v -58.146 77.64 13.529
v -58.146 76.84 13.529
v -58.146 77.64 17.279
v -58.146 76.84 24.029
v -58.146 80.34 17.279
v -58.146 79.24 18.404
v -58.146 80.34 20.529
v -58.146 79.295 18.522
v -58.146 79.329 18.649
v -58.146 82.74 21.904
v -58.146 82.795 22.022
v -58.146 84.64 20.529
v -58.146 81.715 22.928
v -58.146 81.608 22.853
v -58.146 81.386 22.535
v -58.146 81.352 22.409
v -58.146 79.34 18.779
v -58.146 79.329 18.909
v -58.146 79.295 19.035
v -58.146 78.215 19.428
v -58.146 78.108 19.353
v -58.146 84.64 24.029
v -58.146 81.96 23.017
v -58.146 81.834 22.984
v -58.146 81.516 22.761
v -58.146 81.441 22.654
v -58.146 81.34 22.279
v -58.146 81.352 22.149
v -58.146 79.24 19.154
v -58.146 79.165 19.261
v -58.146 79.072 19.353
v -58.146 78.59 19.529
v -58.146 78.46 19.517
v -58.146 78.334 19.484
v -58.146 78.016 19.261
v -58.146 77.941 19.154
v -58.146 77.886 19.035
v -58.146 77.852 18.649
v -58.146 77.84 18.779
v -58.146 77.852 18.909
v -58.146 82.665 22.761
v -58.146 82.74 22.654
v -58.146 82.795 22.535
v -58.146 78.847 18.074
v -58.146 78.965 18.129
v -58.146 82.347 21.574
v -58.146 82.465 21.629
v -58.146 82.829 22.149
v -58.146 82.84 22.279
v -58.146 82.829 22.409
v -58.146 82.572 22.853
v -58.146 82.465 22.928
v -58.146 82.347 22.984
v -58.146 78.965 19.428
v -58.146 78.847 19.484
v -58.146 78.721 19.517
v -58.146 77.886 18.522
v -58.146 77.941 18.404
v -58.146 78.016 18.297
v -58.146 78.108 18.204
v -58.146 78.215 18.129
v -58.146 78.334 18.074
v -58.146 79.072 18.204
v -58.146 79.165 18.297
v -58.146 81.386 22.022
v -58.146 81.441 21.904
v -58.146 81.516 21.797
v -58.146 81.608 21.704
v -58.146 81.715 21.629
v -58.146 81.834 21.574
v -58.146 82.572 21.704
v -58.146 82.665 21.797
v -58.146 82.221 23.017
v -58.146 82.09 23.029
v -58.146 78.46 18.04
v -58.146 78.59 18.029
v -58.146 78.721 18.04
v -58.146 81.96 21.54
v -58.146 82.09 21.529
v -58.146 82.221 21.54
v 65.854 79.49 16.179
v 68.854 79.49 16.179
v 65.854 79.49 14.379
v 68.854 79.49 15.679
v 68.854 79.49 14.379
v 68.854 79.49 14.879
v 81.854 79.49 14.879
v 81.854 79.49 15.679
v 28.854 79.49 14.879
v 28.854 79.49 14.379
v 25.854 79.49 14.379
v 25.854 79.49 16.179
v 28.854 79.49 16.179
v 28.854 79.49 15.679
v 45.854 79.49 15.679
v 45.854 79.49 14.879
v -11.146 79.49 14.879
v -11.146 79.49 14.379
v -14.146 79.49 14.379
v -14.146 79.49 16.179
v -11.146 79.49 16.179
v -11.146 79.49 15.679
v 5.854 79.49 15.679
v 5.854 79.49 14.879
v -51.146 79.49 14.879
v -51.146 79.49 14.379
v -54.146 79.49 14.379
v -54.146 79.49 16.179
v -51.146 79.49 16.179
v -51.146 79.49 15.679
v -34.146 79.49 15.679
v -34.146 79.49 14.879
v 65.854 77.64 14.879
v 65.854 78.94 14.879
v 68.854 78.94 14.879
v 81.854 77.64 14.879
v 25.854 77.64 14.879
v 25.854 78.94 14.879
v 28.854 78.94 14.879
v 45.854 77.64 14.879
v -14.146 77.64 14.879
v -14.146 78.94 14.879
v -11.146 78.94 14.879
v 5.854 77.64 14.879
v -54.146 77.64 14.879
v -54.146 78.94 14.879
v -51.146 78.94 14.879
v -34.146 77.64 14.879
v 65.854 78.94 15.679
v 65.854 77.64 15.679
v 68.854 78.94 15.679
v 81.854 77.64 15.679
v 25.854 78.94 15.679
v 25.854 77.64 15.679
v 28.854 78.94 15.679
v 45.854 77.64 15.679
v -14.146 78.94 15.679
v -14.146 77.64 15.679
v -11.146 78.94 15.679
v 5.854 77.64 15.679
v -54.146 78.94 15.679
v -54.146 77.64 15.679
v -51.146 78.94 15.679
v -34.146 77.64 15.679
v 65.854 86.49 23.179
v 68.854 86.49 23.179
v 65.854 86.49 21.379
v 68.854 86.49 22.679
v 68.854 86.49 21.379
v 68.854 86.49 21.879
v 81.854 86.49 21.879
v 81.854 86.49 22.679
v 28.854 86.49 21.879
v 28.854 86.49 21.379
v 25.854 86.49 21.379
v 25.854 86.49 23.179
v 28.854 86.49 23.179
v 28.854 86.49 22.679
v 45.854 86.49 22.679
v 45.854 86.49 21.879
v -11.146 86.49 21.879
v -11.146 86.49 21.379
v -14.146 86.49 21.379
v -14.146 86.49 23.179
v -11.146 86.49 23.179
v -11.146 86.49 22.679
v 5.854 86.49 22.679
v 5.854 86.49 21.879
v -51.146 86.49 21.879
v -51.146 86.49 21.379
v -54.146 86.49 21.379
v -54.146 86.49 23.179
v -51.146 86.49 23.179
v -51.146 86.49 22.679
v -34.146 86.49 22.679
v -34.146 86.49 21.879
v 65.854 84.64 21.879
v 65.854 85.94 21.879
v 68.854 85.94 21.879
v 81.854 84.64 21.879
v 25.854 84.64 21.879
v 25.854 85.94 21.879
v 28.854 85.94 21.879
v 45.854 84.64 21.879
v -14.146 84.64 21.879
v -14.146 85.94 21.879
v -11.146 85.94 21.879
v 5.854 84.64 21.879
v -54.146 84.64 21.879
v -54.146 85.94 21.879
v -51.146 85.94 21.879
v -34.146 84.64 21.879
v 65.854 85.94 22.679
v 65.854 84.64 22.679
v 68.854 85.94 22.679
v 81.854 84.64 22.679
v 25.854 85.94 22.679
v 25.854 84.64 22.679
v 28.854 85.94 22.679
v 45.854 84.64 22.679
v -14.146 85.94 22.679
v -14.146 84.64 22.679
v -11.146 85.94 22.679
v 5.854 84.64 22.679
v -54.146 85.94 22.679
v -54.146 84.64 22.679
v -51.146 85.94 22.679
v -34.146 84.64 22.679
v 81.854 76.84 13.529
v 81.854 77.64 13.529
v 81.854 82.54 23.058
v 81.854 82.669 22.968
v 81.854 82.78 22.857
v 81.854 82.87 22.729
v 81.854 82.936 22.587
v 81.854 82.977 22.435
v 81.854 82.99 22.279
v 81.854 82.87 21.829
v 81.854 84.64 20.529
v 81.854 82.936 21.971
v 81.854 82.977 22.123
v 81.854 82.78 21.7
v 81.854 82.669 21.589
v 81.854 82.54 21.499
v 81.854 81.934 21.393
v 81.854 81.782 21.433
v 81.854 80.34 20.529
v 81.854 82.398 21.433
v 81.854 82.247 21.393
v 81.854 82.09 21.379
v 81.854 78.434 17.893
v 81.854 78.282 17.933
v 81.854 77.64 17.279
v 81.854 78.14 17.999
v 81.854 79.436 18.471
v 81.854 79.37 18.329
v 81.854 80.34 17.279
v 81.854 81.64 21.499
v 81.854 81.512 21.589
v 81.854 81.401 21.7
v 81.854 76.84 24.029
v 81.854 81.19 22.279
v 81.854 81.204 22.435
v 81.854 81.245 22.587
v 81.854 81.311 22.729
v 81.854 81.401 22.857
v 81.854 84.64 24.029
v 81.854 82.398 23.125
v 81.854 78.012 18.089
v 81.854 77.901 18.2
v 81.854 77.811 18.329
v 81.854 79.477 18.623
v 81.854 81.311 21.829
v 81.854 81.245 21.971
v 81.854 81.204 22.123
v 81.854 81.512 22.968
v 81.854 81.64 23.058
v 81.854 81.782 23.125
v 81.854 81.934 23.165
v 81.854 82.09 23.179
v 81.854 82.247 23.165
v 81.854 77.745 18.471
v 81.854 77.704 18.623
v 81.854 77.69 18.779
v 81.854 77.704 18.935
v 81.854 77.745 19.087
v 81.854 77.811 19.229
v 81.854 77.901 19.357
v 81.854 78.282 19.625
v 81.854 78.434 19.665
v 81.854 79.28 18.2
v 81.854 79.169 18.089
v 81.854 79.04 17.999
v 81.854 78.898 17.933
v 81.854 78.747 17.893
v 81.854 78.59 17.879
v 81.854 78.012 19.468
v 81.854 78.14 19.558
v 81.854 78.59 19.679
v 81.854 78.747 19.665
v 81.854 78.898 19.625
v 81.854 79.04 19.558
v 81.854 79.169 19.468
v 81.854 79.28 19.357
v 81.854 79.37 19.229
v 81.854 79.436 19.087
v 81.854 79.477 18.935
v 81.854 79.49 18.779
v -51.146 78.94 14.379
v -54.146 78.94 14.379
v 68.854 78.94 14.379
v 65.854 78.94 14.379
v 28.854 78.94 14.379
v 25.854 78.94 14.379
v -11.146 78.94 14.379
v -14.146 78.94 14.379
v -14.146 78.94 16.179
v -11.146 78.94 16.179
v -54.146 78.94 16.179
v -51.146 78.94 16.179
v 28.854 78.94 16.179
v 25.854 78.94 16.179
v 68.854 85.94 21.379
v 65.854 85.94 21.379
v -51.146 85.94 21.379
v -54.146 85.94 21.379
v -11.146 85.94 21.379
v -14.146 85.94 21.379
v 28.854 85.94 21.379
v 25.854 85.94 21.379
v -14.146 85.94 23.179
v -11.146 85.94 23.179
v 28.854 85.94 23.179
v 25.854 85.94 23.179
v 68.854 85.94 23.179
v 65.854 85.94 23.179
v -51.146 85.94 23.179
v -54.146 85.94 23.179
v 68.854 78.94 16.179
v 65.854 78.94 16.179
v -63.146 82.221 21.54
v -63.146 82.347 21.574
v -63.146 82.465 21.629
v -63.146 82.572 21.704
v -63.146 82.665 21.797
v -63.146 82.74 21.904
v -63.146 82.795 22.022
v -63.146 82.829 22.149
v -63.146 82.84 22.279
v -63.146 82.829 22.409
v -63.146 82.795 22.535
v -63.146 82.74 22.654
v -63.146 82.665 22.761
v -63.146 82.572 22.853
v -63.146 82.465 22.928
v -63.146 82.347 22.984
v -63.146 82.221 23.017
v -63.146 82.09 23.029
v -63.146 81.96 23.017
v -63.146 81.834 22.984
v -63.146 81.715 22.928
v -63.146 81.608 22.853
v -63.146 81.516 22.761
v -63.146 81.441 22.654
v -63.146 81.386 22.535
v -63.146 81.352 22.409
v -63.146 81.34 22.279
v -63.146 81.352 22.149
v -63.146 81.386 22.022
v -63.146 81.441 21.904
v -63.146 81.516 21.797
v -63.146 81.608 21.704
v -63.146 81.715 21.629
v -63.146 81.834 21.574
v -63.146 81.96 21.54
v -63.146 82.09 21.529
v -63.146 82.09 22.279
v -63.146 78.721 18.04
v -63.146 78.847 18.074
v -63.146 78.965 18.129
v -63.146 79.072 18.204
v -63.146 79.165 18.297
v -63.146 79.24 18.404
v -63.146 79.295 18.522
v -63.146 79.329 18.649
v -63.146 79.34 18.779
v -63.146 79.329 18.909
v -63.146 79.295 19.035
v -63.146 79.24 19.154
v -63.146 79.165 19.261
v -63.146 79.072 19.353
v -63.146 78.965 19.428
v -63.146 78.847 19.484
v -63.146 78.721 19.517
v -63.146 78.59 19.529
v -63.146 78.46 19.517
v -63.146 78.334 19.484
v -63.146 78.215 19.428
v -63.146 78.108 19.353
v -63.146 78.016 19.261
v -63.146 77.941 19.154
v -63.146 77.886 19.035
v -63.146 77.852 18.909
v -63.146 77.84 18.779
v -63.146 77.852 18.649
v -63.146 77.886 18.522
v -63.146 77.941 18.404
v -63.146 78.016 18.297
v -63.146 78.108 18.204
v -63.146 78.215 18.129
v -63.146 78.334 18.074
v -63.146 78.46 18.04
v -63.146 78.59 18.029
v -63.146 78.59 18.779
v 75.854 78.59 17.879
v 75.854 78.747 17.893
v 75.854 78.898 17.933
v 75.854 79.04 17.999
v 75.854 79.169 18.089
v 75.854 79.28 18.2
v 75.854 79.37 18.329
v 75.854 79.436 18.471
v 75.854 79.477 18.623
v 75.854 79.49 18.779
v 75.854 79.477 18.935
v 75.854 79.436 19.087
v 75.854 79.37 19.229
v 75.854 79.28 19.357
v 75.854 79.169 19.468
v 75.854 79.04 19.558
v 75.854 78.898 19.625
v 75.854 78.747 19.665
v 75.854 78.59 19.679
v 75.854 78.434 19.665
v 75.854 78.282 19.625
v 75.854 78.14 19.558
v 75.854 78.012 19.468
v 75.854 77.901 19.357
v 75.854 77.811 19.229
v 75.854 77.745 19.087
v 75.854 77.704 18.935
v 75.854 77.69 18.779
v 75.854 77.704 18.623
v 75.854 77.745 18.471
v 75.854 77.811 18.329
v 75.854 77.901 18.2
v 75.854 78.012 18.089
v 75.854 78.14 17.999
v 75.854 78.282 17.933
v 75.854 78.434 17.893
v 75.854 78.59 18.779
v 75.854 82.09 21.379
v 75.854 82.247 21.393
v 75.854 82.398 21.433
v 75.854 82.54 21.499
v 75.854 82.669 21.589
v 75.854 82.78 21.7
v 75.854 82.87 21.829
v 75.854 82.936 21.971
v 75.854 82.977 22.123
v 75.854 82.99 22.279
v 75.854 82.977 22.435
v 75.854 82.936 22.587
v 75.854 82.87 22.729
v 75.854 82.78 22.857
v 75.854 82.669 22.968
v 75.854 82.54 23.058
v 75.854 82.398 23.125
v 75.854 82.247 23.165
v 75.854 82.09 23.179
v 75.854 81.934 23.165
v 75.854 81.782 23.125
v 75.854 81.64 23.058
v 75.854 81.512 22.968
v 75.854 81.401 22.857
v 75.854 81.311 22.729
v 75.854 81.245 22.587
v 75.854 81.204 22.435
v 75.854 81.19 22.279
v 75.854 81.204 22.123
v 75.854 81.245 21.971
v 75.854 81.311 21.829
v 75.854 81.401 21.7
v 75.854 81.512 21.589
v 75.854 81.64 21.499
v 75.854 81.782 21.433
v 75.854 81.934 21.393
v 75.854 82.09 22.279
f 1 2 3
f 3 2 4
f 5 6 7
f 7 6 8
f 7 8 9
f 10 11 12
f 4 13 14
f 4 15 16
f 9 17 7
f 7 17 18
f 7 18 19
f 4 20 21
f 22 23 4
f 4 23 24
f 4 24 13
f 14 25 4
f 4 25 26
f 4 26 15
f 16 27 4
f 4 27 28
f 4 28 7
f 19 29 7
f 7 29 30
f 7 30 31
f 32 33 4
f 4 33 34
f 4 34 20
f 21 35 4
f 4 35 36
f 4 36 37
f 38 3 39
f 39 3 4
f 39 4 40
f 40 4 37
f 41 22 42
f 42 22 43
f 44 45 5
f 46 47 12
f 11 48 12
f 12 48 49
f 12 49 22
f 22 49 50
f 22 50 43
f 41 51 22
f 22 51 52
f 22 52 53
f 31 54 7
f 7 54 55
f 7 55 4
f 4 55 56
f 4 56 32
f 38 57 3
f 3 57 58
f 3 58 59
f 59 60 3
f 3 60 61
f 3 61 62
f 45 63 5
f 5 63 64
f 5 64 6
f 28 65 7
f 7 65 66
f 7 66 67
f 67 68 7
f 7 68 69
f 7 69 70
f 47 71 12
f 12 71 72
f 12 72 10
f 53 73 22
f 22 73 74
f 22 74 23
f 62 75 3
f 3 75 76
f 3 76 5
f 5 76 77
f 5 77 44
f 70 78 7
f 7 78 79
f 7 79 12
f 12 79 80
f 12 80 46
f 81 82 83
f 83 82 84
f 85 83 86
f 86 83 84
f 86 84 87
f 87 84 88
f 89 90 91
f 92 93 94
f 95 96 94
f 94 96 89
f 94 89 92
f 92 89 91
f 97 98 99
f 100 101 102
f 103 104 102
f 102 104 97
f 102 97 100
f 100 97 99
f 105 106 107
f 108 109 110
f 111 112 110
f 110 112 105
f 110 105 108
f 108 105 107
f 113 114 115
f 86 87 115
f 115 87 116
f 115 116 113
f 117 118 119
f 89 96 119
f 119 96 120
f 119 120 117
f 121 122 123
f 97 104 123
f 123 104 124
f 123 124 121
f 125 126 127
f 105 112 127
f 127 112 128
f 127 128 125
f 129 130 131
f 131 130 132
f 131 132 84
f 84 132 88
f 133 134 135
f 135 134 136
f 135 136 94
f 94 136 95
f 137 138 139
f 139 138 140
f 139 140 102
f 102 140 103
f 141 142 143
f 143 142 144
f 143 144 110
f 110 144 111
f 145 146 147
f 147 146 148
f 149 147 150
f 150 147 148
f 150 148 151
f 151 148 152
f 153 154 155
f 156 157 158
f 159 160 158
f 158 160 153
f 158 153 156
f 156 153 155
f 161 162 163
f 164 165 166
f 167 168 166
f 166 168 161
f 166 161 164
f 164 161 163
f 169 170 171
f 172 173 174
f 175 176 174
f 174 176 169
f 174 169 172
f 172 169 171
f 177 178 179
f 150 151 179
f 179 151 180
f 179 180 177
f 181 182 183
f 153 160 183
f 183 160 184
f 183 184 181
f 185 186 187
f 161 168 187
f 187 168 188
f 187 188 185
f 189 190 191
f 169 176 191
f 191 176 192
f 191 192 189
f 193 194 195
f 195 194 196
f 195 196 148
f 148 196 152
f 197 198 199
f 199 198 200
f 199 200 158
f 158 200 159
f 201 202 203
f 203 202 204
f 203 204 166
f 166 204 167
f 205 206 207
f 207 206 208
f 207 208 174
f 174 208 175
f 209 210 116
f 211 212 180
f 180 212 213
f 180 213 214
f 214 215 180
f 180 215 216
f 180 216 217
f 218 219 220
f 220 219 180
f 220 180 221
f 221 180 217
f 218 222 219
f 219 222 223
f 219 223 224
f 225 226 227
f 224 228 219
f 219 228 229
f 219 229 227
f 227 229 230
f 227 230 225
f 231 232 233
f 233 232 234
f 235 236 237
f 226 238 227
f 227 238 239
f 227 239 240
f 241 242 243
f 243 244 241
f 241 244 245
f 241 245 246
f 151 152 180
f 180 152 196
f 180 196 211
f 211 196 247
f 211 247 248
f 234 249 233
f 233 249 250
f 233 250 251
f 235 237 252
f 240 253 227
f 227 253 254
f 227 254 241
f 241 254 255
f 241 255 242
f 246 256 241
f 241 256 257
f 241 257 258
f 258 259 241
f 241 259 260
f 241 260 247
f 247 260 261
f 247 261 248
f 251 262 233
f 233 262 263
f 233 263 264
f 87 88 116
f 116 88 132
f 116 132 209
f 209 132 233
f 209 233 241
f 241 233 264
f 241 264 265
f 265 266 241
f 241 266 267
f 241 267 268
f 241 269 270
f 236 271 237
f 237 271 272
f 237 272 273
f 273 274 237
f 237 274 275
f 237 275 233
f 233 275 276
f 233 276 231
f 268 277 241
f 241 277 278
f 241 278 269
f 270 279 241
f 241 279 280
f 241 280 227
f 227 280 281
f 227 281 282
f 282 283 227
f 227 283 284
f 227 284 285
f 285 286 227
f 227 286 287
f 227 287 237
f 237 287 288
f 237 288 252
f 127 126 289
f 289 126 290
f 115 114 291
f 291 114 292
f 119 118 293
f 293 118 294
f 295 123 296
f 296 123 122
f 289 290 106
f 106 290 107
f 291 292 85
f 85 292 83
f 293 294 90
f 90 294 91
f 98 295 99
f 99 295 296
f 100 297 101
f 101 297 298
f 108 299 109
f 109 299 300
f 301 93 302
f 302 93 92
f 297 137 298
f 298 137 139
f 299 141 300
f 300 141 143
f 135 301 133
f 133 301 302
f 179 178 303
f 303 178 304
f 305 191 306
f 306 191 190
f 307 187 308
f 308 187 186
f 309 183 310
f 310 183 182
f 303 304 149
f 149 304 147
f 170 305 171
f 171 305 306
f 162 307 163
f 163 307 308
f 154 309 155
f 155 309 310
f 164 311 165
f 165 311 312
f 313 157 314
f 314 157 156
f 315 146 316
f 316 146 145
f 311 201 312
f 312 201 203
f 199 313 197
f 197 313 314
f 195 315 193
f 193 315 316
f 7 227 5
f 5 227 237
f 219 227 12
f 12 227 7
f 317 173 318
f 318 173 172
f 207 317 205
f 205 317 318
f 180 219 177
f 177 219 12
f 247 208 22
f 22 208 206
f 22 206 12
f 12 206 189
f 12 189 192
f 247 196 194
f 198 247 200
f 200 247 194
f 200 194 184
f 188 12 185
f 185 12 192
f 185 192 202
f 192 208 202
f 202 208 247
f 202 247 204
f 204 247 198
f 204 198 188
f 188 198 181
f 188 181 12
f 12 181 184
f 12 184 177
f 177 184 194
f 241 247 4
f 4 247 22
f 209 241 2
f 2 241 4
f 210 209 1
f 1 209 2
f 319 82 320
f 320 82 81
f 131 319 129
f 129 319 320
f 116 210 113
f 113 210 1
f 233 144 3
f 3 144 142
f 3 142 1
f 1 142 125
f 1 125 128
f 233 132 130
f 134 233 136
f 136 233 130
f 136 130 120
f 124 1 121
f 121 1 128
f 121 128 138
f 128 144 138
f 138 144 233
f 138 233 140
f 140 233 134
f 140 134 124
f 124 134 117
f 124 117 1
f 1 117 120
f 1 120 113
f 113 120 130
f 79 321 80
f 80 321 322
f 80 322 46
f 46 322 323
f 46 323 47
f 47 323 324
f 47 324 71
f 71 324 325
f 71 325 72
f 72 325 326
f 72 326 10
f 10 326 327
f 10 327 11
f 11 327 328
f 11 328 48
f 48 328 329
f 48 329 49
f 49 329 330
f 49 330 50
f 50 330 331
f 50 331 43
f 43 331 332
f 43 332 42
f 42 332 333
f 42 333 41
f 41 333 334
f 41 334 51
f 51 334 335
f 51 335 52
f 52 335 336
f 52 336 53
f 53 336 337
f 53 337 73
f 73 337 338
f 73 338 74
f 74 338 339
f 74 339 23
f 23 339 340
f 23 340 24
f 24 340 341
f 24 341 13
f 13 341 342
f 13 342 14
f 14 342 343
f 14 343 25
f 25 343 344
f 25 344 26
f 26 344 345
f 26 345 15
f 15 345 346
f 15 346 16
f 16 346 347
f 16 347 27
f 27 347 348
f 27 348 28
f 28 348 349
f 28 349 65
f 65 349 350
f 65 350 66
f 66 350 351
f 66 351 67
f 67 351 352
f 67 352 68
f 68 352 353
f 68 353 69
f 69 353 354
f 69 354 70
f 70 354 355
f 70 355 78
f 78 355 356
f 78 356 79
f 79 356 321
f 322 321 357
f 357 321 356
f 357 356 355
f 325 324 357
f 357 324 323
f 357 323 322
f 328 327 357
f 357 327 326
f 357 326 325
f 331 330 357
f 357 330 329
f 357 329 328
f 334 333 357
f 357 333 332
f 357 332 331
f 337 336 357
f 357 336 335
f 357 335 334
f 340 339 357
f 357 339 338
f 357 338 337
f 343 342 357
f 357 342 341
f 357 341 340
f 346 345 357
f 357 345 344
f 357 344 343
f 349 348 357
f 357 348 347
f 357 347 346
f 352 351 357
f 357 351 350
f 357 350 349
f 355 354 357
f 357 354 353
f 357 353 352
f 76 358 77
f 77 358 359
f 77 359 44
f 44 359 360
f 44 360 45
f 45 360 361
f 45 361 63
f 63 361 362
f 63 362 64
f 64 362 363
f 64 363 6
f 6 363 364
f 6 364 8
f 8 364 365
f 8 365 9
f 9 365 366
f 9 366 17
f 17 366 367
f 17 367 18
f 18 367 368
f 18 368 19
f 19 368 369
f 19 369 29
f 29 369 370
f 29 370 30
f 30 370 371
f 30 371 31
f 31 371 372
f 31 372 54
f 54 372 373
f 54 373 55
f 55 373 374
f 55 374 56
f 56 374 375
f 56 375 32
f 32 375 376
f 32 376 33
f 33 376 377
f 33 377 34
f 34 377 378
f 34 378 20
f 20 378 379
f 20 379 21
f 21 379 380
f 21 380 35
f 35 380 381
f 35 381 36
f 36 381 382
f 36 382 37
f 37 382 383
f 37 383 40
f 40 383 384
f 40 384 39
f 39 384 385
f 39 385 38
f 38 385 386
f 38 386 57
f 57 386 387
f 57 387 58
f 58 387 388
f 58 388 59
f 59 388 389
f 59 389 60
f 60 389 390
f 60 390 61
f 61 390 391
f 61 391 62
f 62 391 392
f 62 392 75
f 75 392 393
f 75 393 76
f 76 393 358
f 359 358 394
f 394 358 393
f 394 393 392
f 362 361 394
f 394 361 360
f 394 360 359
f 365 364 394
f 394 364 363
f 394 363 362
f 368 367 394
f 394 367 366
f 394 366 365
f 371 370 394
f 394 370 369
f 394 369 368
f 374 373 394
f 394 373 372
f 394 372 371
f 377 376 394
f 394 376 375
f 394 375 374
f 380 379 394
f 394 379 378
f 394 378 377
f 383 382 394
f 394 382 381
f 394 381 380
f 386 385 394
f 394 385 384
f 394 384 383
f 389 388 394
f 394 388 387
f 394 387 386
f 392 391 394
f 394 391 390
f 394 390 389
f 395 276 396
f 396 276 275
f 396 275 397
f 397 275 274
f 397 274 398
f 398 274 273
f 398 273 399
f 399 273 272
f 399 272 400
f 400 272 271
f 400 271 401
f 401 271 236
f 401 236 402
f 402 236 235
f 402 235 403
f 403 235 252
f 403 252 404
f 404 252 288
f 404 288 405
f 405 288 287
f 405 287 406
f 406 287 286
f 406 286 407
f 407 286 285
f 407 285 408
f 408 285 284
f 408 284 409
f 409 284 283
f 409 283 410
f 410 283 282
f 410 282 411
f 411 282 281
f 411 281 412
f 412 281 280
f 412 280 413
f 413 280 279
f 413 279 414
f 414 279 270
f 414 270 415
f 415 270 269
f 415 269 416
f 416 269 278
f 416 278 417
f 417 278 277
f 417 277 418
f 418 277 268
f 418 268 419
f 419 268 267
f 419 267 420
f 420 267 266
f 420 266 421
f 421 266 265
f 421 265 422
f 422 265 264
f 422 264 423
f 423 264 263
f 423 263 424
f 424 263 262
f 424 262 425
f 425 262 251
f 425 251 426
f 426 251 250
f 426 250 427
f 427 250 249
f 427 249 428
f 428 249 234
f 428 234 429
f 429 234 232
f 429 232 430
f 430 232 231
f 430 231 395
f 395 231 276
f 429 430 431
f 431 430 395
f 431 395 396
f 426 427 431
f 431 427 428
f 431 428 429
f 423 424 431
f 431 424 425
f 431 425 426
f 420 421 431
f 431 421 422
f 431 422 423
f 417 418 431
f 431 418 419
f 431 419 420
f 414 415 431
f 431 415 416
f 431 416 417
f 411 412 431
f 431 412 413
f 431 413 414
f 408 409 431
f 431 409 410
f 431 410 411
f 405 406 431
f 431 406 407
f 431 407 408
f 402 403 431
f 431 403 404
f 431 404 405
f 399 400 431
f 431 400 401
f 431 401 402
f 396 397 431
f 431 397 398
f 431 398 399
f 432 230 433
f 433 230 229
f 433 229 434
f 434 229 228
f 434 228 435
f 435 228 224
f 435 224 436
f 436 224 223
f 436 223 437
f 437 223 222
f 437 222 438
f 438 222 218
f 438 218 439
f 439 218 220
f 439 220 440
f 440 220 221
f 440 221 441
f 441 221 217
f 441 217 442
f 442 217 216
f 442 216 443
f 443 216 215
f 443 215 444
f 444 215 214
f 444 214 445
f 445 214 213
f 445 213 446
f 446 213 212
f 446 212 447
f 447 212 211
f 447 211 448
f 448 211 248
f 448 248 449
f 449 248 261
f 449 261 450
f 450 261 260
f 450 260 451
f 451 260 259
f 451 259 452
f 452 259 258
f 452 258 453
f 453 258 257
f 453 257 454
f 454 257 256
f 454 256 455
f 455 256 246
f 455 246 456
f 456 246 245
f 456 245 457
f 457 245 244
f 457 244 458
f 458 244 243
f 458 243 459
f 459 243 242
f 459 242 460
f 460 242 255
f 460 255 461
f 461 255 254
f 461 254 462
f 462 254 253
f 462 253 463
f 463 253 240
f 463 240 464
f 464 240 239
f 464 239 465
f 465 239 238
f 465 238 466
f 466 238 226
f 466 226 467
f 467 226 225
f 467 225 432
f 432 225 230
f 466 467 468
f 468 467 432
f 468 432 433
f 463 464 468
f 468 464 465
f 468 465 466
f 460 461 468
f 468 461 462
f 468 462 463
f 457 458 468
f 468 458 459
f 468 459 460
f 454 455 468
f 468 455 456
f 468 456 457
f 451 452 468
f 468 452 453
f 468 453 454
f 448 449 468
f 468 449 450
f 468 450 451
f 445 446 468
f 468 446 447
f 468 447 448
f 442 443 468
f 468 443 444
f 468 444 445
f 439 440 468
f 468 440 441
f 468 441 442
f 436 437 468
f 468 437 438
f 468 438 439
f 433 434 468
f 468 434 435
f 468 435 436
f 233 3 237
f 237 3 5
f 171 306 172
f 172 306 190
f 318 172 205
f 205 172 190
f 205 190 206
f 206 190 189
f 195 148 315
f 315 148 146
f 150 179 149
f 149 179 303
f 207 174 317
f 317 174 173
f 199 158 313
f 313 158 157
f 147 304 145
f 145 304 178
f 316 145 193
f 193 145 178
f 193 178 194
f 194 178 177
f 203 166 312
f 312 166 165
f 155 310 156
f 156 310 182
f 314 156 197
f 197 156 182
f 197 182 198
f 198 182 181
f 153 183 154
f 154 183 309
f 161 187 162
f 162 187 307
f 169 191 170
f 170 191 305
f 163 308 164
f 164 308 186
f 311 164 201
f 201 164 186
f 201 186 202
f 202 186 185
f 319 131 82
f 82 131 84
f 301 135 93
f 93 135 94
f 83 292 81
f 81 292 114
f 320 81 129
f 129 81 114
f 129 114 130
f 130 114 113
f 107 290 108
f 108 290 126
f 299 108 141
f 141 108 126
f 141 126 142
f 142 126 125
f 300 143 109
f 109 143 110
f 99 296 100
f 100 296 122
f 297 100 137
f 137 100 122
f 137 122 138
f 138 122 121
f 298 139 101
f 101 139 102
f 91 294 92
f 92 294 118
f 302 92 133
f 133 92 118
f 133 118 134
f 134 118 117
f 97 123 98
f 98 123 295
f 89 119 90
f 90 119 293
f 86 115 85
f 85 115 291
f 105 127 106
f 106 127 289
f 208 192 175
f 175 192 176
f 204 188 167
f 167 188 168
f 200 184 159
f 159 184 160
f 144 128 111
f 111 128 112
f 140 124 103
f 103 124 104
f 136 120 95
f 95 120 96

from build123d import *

# Parameters (mm, degrees)
BOSS_EXTRUDE1_DEPTH = 140
SKETCH1_5_R         = 0.75
BOSS_EXTRUDE2_DEPTH = 5
SKETCH2_R           = 0.9
CUT_EXTRUDE1_DEPTH  = 6
SKETCH3_W           = 0.25
SKETCH3_H           = 2.7
CUT_EXTRUDE2_DEPTH  = 171.537268104
SKETCH4_W           = 13
SKETCH4_H           = 1.35
SKETCH4_W_2         = 37
SKETCH4_W_3         = 4
SKETCH4_W_4         = 30
CUT_EXTRUDE4_DEPTH  = 86.663575277
SKETCH6_W           = 13
SKETCH6_H           = 1.35
SKETCH6_W_2         = 37
SKETCH6_W_3         = 24
CUT_EXTRUDE5_DEPTH  = 86.765556194
SKETCH7_W           = 20
SKETCH7_H           = 1.8
CUT_EXTRUDE6_DEPTH  = 86.663575277
SKETCH8_W           = 20
SKETCH8_H           = 1.8
CUT_EXTRUDE7_DEPTH  = 86.765556194


with BuildPart() as part:
    # Sketch1 → Boss-Extrude1 (new body)
    with BuildSketch(Plane(origin=(-58.146340827, 0, 0), x_dir=(0, 0, -1), z_dir=(1, 0, 0))):
        Polygon((-20.52887033, 84.640306989), (-21.87887033, 84.640306989), (-21.87887033, 85.940306989), (-21.37887033, 85.940306989), (-21.37887033, 86.490306989), (-23.17887033, 86.490306989), (-23.17887033, 85.940306989), (-22.67887033, 85.940306989), (-22.67887033, 84.640306989), (-24.02887033, 84.640306989), (-24.02887033, 76.840306989), (-13.52887033, 76.840306989), (-13.52887033, 77.640306989), (-14.87887033, 77.640306989), (-14.87887033, 78.940306989), (-14.37887033, 78.940306989), (-14.37887033, 79.490306989), (-16.17887033, 79.490306989), (-16.17887033, 78.940306989), (-15.67887033, 78.940306989), (-15.67887033, 77.640306989), (-17.02887033, 77.640306989), (-17.02887033, 80.340306989), (-20.52887033, 80.340306989), align=None)
    extrude(amount=BOSS_EXTRUDE1_DEPTH)

    # Sketch1<5> → Boss-Extrude2 (add)
    with BuildSketch(Plane(origin=(-58.146340827, 0, 0), x_dir=(0, 0, -1), z_dir=(1, 0, 0))):
        with Locations((-22.27887033, 82.090306989)):
            Circle(SKETCH1_5_R)
        with Locations((-18.77887033, 78.590306989)):
            Circle(SKETCH1_5_R)
    extrude(amount=-BOSS_EXTRUDE2_DEPTH)

    # Sketch2 → Cut-Extrude1 (cut)
    with BuildSketch(Plane(origin=(81.853659173, 0, 0), x_dir=(0, 0, -1), z_dir=(1, 0, 0))):
        with Locations((-22.27887033, 82.090306989)):
            Circle(SKETCH2_R)
        with Locations((-18.77887033, 78.590306989)):
            Circle(SKETCH2_R)
    extrude(amount=-CUT_EXTRUDE1_DEPTH, mode=Mode.SUBTRACT)

    # Sketch3 → Cut-Extrude2 (cut, through all)
    with BuildSketch(Plane(origin=(81.853659173, 0, 0), x_dir=(0, 0, -1), z_dir=(1, 0, 0))):
        with Locations((-17.15387033, 78.990306989)):
            Rectangle(SKETCH3_W, SKETCH3_H)
    extrude(amount=-CUT_EXTRUDE2_DEPTH, mode=Mode.SUBTRACT)

    # Sketch4 → Cut-Extrude4 (cut, through all)
    with BuildSketch(Plane(origin=(0, 84.640306989, 0), x_dir=(1, 0, 0), z_dir=(0, 1, 0))):
        with Locations((75.353659173, -21.20387033)):
            Rectangle(SKETCH4_W, SKETCH4_H)
        with Locations((75.353659173, -23.35387033)):
            Rectangle(SKETCH4_W, SKETCH4_H)
        with Locations((47.353659173, -23.35387033)):
            Rectangle(SKETCH4_W_2, SKETCH4_H)
        with Locations((7.353659173, -23.35387033)):
            Rectangle(SKETCH4_W_2, SKETCH4_H)
        with Locations((-32.646340827, -23.35387033)):
            Rectangle(SKETCH4_W_2, SKETCH4_H)
        with Locations((-56.146340827, -23.35387033)):
            Rectangle(SKETCH4_W_3, SKETCH4_H)
        with Locations((47.353659173, -21.20387033)):
            Rectangle(SKETCH4_W_2, SKETCH4_H)
        with Locations((7.353659173, -21.20387033)):
            Rectangle(SKETCH4_W_2, SKETCH4_H)
        with Locations((-32.646340827, -21.20387033)):
            Rectangle(SKETCH4_W_2, SKETCH4_H)
        with Locations((-69.146340827, -21.20387033)):
            Rectangle(SKETCH4_W_4, SKETCH4_H)
    extrude(amount=CUT_EXTRUDE4_DEPTH, mode=Mode.SUBTRACT)

    # Sketch6 → Cut-Extrude5 (cut, through all)
    with BuildSketch(Plane(origin=(0, 77.640306989, 0), x_dir=(1, 0, 0), z_dir=(0, 1, 0))):
        with Locations((75.353659173, -14.20387033)):
            Rectangle(SKETCH6_W, SKETCH6_H)
        with Locations((47.353659173, -14.20387033)):
            Rectangle(SKETCH6_W_2, SKETCH6_H)
        with Locations((7.353659173, -14.20387033)):
            Rectangle(SKETCH6_W_2, SKETCH6_H)
        with Locations((-32.646340827, -14.20387033)):
            Rectangle(SKETCH6_W_2, SKETCH6_H)
        with Locations((-66.146340827, -14.20387033)):
            Rectangle(SKETCH6_W_3, SKETCH6_H)
        with Locations((75.353659173, -16.35387033)):
            Rectangle(SKETCH6_W, SKETCH6_H)
        with Locations((47.353659173, -16.35387033)):
            Rectangle(SKETCH6_W_2, SKETCH6_H)
        with Locations((7.353659173, -16.35387033)):
            Rectangle(SKETCH6_W_2, SKETCH6_H)
        with Locations((-32.646340827, -16.35387033)):
            Rectangle(SKETCH6_W_2, SKETCH6_H)
        with Locations((-66.146340827, -16.35387033)):
            Rectangle(SKETCH6_W_3, SKETCH6_H)
    extrude(amount=CUT_EXTRUDE5_DEPTH, mode=Mode.SUBTRACT)

    # Sketch7 → Cut-Extrude6 (cut, through all)
    with BuildSketch(Plane(origin=(0, 84.640306989, 0), x_dir=(1, 0, 0), z_dir=(0, 1, 0))):
        with Locations((55.853659173, -22.27887033)):
            Rectangle(SKETCH7_W, SKETCH7_H)
        with Locations((15.853659173, -22.27887033)):
            Rectangle(SKETCH7_W, SKETCH7_H)
        with Locations((-24.146340827, -22.27887033)):
            Rectangle(SKETCH7_W, SKETCH7_H)
        with Locations((-64.146340827, -22.27887033)):
            Rectangle(SKETCH7_W, SKETCH7_H)
    extrude(amount=CUT_EXTRUDE6_DEPTH, mode=Mode.SUBTRACT)

    # Sketch8 → Cut-Extrude7 (cut, through all)
    with BuildSketch(Plane(origin=(0, 77.640306989, 0), x_dir=(1, 0, 0), z_dir=(0, 1, 0))):
        with Locations((55.853659173, -15.27887033)):
            Rectangle(SKETCH8_W, SKETCH8_H)
        with Locations((15.853659173, -15.27887033)):
            Rectangle(SKETCH8_W, SKETCH8_H)
        with Locations((-24.146340827, -15.27887033)):
            Rectangle(SKETCH8_W, SKETCH8_H)
        with Locations((-64.146340827, -15.27887033)):
            Rectangle(SKETCH8_W, SKETCH8_H)
    extrude(amount=CUT_EXTRUDE7_DEPTH, mode=Mode.SUBTRACT)


solid = part.part
